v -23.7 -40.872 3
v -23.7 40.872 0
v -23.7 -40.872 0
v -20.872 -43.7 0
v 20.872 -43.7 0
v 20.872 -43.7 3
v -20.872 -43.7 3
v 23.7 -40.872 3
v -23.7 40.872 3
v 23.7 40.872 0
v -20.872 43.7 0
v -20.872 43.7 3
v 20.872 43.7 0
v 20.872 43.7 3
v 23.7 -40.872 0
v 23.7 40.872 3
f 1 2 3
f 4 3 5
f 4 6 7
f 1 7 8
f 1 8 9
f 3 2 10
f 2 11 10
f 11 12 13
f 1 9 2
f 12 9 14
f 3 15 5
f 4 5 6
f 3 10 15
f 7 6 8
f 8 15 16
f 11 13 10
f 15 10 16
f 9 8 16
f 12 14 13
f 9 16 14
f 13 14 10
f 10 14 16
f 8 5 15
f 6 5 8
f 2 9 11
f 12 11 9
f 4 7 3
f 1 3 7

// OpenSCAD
// file: Inlet.scad
$fn = 100;
tiny = 0.01;


/******************************************************
 * dx,dy: Maße, wie bei 'Boden' angegeben.
 *****************************************************/
module inlet_top_down(dx,dy) {
  h1 = 3;  
  dx1 = 6.3;
  dx2 = 4.0; // vier mal Fase an Ecken

  difference() {
     translate([0,0,h1/2]) cube([dx-2*dx1,dy-2*dx1,h1], true); 
     translate([+dx/2-dx1,+dy/2-dx1,h1/2-tiny]) rotate([0,0,45]) cube([dx2,dx2,h1+3*tiny], true);
     translate([+dx/2-dx1,-dy/2+dx1,h1/2-tiny]) rotate([0,0,45]) cube([dx2,dx2,h1+3*tiny], true);
     translate([-dx/2+dx1,+dy/2-dx1,h1/2-tiny]) rotate([0,0,45]) cube([dx2,dx2,h1+3*tiny], true);
     translate([-dx/2+dx1,-dy/2+dx1,h1/2-tiny]) rotate([0,0,45]) cube([dx2,dx2,h1+3*tiny], true);
     }
}
// main file
$fn = 100;
tiny = 0.01;

use <Inlet.scad>

inlet_top_down(60,100);
